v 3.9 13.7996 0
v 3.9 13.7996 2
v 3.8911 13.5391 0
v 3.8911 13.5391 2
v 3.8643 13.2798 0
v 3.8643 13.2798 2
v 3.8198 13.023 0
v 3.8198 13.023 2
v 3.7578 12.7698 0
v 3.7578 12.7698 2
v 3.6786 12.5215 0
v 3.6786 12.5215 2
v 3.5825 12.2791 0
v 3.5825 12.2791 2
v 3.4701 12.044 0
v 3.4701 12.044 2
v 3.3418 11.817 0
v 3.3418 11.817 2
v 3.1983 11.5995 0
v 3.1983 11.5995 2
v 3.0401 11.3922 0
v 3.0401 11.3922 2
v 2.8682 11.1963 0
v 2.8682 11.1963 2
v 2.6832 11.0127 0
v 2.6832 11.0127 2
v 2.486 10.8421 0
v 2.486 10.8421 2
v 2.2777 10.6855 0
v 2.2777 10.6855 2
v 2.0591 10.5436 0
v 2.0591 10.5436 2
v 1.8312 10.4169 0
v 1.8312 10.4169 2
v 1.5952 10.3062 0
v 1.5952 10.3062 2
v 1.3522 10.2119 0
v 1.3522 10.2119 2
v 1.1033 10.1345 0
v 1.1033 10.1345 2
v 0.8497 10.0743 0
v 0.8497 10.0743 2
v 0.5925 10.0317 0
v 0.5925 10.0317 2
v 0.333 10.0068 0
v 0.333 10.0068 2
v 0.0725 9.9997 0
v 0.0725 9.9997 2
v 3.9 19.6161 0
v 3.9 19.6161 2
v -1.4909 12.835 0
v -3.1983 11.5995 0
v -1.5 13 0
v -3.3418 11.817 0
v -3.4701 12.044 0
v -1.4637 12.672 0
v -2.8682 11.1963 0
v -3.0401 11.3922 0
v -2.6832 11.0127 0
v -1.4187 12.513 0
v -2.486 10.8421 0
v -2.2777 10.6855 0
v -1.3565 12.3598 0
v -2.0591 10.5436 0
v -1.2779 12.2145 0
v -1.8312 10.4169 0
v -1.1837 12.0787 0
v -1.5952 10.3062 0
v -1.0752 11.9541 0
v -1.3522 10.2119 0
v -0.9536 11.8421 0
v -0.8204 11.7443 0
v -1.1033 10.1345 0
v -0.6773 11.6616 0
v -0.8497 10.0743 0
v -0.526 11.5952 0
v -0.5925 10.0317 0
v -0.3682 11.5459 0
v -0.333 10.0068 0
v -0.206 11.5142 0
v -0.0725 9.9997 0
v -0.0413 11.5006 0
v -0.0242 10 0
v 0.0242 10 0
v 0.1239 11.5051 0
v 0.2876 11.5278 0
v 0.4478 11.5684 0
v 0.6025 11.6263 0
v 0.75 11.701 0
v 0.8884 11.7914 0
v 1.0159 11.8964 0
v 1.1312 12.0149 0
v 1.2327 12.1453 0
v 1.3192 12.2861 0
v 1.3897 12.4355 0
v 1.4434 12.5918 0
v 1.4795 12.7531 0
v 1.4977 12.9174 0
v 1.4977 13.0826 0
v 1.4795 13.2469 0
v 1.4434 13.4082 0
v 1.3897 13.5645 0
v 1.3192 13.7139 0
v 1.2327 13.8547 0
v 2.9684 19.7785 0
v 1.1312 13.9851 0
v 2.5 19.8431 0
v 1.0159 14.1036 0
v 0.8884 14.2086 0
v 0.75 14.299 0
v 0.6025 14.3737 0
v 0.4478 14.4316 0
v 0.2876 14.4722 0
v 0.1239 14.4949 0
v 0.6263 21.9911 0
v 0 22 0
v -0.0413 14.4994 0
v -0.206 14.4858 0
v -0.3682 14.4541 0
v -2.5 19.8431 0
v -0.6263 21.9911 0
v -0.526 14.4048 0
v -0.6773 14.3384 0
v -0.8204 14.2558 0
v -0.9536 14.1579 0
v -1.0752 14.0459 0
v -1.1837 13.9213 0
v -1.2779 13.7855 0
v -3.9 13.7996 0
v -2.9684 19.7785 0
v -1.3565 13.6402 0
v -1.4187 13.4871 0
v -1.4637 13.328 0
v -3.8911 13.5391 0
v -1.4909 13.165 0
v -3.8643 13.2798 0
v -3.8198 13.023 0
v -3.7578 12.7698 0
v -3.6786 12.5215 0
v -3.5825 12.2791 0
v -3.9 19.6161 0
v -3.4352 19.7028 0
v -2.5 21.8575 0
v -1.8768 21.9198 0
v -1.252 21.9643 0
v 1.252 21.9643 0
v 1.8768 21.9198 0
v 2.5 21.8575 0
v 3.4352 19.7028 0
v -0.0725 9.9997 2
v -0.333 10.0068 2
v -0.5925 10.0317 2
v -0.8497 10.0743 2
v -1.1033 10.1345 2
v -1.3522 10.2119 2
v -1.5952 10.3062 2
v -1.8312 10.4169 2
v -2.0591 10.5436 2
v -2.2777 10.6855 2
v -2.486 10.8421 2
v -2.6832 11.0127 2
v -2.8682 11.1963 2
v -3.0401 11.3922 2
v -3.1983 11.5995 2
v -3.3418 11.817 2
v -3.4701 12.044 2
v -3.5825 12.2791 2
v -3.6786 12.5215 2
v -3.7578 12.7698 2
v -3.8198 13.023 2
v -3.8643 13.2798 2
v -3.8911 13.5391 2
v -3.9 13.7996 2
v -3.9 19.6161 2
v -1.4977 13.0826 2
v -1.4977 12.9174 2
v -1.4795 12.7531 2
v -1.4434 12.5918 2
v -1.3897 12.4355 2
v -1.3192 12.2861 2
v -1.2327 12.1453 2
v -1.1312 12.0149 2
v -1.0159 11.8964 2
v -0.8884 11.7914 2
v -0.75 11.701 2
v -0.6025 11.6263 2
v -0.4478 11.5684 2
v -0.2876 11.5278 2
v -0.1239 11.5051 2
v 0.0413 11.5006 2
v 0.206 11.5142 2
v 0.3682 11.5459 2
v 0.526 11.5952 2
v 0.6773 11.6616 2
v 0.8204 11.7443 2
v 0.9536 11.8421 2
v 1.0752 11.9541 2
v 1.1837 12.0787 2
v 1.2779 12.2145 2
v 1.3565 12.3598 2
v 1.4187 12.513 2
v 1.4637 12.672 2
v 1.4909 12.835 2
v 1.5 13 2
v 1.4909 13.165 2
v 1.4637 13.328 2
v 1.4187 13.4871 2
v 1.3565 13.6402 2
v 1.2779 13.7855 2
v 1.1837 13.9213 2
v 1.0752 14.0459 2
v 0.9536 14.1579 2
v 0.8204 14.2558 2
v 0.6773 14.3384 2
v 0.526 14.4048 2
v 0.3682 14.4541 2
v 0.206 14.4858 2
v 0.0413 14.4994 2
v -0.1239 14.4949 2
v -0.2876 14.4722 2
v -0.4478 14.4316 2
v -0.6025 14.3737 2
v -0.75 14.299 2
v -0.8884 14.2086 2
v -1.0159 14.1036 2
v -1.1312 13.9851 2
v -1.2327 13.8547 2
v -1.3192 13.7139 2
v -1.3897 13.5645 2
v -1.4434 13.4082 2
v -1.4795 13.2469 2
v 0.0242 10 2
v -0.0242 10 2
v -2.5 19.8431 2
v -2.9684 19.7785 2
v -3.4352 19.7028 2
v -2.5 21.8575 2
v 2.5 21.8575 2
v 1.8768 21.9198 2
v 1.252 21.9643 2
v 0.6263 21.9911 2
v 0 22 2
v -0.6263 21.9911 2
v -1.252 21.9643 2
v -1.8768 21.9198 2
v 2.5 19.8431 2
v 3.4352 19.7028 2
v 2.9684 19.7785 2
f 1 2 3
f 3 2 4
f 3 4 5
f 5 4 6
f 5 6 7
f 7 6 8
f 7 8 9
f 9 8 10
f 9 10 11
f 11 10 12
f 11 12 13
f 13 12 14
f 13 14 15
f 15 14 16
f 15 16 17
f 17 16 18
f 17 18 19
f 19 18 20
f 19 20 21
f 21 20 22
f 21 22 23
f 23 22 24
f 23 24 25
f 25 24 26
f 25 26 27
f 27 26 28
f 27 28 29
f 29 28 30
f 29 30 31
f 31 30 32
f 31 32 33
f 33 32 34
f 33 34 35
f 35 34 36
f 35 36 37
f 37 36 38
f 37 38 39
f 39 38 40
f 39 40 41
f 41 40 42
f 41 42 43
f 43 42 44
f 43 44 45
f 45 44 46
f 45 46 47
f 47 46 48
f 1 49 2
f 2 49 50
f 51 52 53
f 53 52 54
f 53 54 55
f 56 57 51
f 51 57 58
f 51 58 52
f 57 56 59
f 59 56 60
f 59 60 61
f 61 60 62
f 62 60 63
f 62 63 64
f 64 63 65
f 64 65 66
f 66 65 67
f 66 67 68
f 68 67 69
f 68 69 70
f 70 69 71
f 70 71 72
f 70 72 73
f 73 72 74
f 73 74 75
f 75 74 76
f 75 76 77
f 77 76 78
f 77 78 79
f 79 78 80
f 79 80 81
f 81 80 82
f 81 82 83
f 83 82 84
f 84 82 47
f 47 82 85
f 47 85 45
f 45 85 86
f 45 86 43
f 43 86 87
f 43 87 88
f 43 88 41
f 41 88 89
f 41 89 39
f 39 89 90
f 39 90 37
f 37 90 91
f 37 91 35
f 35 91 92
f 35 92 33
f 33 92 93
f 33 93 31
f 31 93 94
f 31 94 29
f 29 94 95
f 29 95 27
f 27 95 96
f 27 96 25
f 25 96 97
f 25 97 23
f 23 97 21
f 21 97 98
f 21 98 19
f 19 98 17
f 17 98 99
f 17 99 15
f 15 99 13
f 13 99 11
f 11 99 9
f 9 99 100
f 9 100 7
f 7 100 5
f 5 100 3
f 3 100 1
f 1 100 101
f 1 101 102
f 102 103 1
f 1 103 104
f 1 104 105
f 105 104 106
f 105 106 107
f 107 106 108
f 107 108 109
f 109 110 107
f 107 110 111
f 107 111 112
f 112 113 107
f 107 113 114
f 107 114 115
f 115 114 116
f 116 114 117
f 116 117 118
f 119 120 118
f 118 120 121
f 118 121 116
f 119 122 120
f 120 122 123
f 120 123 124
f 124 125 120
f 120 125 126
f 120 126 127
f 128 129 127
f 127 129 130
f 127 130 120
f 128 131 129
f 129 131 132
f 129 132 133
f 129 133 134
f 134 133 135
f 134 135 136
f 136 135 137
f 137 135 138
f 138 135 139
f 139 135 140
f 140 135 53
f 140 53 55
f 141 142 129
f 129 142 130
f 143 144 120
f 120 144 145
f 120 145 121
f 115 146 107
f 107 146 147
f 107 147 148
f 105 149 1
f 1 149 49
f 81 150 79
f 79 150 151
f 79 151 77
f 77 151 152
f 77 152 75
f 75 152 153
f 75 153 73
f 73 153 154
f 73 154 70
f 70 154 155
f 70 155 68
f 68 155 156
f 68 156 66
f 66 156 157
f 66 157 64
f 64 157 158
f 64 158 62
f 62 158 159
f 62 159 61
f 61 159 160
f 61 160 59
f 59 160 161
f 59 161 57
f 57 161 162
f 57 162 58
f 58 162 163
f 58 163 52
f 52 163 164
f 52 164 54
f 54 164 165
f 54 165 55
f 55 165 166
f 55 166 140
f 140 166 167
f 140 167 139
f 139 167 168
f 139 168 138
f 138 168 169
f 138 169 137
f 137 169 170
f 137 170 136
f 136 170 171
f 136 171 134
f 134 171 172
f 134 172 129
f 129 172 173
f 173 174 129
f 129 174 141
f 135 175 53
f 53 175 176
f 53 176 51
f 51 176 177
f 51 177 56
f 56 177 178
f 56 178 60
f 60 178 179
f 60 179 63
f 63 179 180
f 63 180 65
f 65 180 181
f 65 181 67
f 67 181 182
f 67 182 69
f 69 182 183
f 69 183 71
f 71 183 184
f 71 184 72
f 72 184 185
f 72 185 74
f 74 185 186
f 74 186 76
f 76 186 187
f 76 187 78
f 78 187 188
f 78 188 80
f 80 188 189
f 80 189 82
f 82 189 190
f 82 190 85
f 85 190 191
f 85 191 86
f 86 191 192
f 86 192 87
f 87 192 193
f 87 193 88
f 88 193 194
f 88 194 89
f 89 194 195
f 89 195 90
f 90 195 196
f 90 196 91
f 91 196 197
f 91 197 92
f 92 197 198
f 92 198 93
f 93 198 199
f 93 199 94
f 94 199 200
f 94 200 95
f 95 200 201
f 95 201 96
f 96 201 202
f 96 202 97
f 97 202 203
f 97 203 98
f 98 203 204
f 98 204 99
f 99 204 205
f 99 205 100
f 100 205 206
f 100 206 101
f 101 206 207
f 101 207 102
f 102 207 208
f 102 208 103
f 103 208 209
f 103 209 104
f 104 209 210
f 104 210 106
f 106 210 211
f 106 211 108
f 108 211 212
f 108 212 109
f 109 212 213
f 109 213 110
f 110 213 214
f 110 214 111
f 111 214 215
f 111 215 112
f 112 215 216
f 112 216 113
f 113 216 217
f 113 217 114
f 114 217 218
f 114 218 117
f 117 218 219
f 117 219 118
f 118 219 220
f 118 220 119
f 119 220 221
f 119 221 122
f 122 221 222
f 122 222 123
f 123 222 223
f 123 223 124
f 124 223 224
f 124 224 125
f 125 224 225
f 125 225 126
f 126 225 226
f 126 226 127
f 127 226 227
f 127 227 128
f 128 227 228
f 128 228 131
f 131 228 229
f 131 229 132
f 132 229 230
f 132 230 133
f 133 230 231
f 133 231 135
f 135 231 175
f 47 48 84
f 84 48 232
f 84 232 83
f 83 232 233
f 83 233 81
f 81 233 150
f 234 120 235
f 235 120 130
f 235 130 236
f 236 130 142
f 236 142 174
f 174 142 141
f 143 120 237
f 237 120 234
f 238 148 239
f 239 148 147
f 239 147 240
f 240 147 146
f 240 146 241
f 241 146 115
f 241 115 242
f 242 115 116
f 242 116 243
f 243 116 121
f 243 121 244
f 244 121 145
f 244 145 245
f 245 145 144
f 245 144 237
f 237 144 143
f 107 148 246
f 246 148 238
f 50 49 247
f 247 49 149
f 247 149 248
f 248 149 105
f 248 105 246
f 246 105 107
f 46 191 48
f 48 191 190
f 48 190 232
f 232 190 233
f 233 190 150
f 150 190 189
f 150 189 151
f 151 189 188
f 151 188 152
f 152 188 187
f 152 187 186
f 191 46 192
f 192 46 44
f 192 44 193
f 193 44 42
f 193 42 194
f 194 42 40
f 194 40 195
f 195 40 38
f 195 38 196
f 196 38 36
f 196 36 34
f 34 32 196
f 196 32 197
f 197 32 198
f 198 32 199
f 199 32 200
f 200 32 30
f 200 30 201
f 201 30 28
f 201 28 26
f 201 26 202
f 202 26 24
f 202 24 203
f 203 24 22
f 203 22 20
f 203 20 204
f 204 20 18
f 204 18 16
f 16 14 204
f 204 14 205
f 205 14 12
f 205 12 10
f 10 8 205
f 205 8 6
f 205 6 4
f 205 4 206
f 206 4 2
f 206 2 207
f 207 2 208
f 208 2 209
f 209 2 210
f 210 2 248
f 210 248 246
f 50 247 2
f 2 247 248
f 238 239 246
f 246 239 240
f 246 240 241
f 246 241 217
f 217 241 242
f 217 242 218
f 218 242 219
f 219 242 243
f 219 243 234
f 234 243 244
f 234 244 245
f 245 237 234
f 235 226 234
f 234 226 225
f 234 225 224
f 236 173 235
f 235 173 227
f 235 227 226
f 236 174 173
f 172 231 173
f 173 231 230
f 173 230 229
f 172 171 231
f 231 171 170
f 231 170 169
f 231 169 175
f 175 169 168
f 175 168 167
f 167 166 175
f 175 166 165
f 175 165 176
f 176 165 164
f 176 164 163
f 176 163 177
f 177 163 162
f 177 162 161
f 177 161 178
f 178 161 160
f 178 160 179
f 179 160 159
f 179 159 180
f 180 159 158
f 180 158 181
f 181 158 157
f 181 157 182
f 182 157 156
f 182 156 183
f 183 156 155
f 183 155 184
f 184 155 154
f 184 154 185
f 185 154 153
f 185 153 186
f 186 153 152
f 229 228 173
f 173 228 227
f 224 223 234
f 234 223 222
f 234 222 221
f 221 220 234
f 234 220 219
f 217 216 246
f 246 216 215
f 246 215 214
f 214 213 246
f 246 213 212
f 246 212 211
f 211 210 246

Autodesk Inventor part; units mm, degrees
ref_plane "YZ Plane" through (0, 0, 0) normal (1, 0, 0) x (0, 1, 0)
ref_plane "XZ Plane" through (0, 0, 0) normal (0, 1, 0) x (-1, 0, 0)
ref_plane "XY Plane" through (0, 0, 0) normal (0, 0, 1) x (1, 0, 0)
sketch "스케치1" plane through (0, 0, 0) normal (0, 0, 1) x (1, 0, 0)
  circle A0 centre (0, 0) radius 20
  line L0 (-3.9, 19.6161) -> (-3.9, 0)
  line L1 (-3.9, 0) -> (3.9, 0)
  line L2 (3.9, 0) -> (3.9, 19.6161)
  circle A1 centre (0, 0) radius 10
  line L3 (-2.5, 21.8575) -> (-2.5, 19.8431)
  line L4 (2.5, 21.8575) -> (2.5, 19.8431)
  circle A2 centre (0, 0) radius 22
  point P0 (0, 0)
  point P1 (0, 0)
  point P2 (-3.9, 9.2081)
  point P3 (3.9, 9.2081)
  dimension "d0" = 40
  dimension "d1" = 7.8
  dimension "d5" = 20
  dimension "d13" = 2
  dimension "d14" = 5
  dimension "d15" = 2.5
extrude "돌출1" add sketch "스케치1" along normal blind 2 contours L2 A1 L0 A0 | A0 L3 A2 L4 picked at (1.4966, 13.2144) picked at (-1.9451, 20.5611)
sketch "스케치2" plane through (0, 0, 2) normal (0, 0, 1) x (1, 0, 0)
  circle A0 centre (0, 13) radius 1.5
  arc A1 (3.9, 9.2081) -> (-3.9, 9.2081) centre (0, 0) ccw projected
  point P0 (0, 0)
  point P1 (0, 10)
  dimension "d6" = 3
  dimension "d7" = 3
extrude "돌출2" cut sketch "스케치2" against normal through all
fillet "모깎기1" radius 3.8 2 edges at (-3.9, 9.2081, 1) (3.9, 9.2081, 1)
equation "\"d15\" = 0.5 * d14"
properties part number "ModuleConnector_Outside_Axis_3D 인쇄"
